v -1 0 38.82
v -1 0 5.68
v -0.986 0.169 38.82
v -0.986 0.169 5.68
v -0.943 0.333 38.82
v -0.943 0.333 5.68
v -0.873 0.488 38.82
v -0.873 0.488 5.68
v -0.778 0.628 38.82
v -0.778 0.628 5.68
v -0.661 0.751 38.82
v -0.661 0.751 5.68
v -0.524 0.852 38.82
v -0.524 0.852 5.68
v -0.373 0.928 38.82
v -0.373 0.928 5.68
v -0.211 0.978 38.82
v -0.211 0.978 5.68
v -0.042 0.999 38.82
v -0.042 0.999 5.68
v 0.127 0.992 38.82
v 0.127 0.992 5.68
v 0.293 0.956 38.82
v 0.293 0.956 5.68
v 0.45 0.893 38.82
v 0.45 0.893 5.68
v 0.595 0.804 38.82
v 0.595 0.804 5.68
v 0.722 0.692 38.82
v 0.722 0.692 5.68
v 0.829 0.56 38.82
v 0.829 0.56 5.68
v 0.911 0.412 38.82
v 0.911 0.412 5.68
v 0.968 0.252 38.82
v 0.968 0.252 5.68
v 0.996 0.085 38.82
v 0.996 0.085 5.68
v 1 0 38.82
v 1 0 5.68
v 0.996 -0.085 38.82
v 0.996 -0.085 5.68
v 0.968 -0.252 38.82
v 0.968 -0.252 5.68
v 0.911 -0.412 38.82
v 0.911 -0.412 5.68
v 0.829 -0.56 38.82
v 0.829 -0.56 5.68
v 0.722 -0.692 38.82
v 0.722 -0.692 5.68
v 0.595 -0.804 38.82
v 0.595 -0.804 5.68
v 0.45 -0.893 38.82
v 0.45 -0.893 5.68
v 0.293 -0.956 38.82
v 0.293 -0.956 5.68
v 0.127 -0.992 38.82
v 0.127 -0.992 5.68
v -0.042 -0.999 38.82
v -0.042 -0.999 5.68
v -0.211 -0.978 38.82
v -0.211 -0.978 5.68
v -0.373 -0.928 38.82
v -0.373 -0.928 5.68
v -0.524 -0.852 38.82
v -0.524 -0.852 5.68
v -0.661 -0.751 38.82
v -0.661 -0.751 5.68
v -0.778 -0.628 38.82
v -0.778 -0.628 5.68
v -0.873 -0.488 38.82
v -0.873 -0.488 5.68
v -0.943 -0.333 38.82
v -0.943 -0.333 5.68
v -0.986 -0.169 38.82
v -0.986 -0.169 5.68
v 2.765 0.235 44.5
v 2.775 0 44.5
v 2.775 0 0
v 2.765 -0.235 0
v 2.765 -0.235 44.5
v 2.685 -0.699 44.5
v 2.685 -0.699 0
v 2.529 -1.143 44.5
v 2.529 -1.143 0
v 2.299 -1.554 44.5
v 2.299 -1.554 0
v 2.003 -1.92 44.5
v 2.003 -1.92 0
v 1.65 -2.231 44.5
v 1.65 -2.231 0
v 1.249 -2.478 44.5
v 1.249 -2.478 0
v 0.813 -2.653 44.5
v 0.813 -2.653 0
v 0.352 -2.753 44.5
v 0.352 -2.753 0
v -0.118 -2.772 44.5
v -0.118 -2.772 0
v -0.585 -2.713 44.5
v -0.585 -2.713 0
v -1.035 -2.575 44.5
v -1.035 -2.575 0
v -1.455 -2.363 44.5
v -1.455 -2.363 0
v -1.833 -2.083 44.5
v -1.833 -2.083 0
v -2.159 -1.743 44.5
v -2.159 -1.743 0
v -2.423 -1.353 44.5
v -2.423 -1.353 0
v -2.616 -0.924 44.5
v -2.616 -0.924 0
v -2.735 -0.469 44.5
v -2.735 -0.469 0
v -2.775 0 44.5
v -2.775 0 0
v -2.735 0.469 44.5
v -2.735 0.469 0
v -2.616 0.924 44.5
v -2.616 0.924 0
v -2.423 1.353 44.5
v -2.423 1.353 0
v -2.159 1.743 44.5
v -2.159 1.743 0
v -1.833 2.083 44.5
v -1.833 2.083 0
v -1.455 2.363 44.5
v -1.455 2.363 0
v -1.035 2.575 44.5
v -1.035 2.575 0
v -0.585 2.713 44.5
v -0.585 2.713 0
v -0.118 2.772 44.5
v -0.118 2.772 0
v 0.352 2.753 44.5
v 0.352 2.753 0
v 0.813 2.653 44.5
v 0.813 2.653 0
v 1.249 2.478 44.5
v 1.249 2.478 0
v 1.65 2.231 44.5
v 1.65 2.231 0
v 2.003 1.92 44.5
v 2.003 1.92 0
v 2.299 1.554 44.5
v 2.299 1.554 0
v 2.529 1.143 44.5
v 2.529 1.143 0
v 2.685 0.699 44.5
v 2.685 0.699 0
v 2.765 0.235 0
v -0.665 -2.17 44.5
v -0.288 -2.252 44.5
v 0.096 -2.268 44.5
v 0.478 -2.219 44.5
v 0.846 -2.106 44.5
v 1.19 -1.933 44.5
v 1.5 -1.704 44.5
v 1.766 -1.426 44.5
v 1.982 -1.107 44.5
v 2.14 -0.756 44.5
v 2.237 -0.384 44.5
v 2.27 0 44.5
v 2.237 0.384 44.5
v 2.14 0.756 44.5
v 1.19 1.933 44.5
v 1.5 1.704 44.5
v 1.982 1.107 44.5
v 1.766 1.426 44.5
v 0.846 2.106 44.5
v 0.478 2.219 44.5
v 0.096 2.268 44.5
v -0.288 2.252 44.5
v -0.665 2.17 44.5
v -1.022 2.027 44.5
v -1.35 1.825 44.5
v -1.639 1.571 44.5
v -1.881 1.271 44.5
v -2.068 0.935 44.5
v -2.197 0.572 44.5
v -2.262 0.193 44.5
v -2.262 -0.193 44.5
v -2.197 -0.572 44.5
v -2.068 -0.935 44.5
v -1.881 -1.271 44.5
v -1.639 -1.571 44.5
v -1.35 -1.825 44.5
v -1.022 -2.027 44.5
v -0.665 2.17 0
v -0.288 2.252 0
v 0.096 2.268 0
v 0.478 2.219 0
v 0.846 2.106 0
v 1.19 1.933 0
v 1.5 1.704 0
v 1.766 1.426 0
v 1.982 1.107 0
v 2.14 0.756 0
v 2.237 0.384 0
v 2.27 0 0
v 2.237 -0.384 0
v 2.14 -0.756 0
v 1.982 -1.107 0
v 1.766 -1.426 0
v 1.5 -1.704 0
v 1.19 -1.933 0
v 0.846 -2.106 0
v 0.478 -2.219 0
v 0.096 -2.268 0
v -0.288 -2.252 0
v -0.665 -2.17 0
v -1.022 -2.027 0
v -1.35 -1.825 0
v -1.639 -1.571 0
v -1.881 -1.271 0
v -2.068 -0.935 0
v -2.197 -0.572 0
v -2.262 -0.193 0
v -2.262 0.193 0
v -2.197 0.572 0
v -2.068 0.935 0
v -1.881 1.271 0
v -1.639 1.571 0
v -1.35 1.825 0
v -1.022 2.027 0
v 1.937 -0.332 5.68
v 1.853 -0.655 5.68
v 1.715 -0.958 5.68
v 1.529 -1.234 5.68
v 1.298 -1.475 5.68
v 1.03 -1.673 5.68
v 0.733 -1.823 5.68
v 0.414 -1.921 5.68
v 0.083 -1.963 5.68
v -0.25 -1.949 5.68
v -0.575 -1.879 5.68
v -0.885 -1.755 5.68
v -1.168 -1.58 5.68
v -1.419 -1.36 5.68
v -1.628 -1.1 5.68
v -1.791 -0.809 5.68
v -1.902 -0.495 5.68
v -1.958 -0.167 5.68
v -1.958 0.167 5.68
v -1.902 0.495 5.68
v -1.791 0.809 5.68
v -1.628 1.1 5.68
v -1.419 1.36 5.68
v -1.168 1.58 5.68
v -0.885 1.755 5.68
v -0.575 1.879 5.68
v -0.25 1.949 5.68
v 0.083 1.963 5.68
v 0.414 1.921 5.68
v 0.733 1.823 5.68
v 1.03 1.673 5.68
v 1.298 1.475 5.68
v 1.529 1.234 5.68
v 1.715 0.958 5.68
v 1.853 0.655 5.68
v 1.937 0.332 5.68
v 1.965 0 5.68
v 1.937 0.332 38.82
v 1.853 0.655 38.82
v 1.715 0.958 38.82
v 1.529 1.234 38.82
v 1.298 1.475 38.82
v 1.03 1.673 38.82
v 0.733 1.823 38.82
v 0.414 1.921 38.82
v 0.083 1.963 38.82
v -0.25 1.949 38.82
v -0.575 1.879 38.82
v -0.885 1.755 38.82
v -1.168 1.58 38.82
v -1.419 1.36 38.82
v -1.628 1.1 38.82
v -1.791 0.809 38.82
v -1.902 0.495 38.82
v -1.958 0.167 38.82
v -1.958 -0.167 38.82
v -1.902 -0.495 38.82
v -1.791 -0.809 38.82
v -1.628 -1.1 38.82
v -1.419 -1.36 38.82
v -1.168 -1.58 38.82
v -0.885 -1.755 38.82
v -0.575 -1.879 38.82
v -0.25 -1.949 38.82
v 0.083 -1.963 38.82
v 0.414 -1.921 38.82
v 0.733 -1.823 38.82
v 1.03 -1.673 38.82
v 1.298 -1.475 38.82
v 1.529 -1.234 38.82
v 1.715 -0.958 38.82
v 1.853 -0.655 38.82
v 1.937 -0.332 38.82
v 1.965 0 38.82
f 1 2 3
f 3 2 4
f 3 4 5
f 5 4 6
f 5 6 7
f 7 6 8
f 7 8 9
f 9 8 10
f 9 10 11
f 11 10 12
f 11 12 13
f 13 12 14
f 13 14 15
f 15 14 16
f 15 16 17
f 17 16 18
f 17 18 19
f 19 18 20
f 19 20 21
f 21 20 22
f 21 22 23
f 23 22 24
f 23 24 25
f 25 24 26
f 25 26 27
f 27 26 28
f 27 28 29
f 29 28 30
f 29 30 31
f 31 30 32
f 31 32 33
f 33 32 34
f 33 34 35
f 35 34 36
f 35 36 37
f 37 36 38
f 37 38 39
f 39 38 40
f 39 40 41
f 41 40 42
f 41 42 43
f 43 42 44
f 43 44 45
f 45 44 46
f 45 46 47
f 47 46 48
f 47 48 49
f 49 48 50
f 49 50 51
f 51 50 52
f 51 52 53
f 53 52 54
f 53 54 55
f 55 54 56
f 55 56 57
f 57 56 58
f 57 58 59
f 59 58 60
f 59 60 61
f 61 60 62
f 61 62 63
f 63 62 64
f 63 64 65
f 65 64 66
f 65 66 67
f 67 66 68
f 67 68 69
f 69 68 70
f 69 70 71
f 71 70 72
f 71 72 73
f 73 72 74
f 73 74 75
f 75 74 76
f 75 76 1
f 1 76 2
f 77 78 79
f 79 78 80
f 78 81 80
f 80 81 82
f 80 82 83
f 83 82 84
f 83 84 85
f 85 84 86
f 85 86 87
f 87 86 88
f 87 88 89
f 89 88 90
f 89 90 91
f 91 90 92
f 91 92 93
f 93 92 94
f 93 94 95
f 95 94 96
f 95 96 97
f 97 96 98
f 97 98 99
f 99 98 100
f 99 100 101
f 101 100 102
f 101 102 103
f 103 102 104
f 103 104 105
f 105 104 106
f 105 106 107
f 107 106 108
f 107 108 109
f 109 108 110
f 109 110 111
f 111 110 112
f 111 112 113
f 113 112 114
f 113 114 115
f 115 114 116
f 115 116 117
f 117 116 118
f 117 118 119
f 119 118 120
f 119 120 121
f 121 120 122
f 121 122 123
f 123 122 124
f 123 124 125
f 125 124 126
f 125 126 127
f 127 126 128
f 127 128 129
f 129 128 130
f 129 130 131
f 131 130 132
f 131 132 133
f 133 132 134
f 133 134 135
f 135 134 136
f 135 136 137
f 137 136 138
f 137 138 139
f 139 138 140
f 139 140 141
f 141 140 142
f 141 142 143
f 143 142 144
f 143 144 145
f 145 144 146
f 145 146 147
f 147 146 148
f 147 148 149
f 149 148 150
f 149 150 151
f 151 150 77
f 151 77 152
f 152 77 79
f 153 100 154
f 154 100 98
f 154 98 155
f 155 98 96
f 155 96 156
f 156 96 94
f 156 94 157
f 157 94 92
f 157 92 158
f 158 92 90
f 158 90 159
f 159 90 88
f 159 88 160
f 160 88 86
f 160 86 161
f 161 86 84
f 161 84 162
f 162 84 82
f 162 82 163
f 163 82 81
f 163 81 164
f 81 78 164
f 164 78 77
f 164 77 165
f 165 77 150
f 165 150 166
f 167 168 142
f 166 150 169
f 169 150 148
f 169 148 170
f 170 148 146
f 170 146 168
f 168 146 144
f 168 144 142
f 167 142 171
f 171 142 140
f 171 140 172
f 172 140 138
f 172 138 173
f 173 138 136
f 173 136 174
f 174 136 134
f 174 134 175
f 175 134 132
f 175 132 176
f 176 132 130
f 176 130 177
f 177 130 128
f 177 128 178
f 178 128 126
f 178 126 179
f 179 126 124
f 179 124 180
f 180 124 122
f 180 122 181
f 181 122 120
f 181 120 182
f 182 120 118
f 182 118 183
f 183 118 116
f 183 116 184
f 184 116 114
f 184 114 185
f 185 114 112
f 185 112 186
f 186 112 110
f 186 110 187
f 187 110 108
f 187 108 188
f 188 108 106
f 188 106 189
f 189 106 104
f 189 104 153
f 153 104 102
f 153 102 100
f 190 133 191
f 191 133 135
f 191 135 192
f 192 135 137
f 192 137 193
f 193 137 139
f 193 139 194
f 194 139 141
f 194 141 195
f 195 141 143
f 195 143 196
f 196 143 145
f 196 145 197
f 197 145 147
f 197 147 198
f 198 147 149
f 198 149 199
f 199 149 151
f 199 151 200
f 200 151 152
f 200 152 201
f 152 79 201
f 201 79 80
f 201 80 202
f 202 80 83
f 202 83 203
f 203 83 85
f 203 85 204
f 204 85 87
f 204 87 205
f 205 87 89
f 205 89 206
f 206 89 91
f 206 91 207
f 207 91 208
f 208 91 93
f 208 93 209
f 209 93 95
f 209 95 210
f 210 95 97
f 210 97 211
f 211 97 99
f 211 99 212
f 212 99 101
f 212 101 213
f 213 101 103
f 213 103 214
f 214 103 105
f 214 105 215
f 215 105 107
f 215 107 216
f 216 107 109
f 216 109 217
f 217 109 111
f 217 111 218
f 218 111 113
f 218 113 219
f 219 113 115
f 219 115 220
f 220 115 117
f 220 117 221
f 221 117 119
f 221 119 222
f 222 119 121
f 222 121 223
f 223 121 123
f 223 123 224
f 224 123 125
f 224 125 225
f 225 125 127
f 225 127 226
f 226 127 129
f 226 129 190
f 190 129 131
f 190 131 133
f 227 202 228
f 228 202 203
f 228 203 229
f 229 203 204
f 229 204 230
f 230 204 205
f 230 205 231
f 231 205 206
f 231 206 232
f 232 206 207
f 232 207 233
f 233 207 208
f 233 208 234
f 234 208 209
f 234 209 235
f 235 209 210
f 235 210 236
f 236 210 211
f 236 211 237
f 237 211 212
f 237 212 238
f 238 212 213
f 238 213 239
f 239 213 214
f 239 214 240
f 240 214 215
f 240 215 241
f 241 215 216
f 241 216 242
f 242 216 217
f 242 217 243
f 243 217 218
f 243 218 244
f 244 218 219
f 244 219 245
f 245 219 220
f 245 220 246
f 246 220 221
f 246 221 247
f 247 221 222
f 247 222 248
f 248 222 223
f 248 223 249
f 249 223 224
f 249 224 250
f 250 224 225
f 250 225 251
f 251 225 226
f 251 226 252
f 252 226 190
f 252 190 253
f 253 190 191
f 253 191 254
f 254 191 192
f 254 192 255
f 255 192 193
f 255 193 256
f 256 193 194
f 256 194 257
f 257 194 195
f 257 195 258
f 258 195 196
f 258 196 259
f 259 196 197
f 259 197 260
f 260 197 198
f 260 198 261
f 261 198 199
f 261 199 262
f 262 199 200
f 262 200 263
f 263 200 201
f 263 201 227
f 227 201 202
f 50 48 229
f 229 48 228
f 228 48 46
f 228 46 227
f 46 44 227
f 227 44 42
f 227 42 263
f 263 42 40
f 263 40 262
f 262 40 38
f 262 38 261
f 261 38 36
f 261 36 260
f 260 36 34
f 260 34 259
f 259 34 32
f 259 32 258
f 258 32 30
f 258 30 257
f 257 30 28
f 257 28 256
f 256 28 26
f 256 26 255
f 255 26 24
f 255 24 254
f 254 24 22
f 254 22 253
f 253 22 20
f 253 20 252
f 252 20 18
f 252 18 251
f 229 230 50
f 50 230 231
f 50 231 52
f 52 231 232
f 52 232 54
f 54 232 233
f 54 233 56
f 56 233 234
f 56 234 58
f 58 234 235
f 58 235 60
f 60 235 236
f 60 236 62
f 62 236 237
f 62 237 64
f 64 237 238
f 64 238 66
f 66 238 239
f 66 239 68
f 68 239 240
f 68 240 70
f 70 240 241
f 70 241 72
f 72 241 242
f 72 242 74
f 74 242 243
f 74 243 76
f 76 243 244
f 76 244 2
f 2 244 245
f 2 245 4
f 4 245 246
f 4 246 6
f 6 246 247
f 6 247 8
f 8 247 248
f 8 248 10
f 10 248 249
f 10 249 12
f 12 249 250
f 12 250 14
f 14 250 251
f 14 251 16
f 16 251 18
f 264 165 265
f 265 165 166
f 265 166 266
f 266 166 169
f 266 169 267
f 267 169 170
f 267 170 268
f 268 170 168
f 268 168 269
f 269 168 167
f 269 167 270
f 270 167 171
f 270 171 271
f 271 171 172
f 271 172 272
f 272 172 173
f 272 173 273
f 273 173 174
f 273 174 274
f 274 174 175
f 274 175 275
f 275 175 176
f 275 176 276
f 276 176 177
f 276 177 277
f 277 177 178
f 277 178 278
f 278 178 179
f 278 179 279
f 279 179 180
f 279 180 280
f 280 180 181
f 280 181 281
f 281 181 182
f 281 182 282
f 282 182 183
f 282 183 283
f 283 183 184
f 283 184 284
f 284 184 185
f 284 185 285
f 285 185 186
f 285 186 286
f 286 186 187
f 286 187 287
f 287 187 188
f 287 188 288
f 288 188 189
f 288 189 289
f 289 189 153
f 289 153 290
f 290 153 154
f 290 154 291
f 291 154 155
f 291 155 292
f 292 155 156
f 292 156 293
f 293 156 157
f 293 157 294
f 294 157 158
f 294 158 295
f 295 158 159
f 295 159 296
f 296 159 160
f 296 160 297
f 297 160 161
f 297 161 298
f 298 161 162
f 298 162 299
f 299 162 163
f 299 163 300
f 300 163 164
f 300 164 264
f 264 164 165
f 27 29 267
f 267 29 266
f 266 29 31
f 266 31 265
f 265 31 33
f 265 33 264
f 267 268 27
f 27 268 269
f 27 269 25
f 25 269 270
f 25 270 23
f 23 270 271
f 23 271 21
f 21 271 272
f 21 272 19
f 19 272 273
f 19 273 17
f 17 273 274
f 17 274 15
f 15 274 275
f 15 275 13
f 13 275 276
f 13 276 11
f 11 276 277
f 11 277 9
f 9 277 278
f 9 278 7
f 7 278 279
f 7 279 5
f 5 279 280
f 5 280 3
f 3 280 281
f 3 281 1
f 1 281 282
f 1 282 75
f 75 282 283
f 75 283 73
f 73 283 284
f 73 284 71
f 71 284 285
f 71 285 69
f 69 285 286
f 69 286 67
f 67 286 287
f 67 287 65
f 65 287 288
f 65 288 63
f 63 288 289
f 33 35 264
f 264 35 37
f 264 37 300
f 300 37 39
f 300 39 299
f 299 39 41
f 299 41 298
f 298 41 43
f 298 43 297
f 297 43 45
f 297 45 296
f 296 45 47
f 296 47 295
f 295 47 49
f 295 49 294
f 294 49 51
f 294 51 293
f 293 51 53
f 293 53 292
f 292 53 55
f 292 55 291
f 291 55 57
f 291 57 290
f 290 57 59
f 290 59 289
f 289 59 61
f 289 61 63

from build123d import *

# Parameters (mm, degrees)
SKETCH1_R           = 2.775
BOSS_EXTRUDE1_DEPTH = 44.5
SKETCH2_R           = 2.27
CUT_EXTRUDE1_DEPTH  = 5.68
CUT_EXTRUDE1_TAPER  = 3.074
SKETCH7_R           = 1
CUT_EXTRUDE2_DEPTH  = 45.5
SKETCH9_R           = 2.27
CUT_EXTRUDE3_DEPTH  = 5.68
CUT_EXTRUDE3_TAPER  = 3.074


with BuildPart() as part:
    # Sketch1 → Boss-Extrude1 (new body)
    with BuildSketch(Plane.XY):
        Circle(SKETCH1_R)
    extrude(amount=BOSS_EXTRUDE1_DEPTH)

    # Sketch2 → Cut-Extrude1 (cut)
    with BuildSketch(Plane.XY):
        Circle(SKETCH2_R)
    extrude(amount=CUT_EXTRUDE1_DEPTH, taper=CUT_EXTRUDE1_TAPER, mode=Mode.SUBTRACT)

    # Sketch7 → Cut-Extrude2 (cut, through all)
    with BuildSketch(Plane.XY):
        Circle(SKETCH7_R)
    extrude(amount=CUT_EXTRUDE2_DEPTH, mode=Mode.SUBTRACT)

    # Sketch9 → Cut-Extrude3 (cut)
    with BuildSketch(Plane.XY.offset(44.5)):
        Circle(SKETCH9_R)
    extrude(amount=-CUT_EXTRUDE3_DEPTH, taper=CUT_EXTRUDE3_TAPER, mode=Mode.SUBTRACT)


solid = part.part
